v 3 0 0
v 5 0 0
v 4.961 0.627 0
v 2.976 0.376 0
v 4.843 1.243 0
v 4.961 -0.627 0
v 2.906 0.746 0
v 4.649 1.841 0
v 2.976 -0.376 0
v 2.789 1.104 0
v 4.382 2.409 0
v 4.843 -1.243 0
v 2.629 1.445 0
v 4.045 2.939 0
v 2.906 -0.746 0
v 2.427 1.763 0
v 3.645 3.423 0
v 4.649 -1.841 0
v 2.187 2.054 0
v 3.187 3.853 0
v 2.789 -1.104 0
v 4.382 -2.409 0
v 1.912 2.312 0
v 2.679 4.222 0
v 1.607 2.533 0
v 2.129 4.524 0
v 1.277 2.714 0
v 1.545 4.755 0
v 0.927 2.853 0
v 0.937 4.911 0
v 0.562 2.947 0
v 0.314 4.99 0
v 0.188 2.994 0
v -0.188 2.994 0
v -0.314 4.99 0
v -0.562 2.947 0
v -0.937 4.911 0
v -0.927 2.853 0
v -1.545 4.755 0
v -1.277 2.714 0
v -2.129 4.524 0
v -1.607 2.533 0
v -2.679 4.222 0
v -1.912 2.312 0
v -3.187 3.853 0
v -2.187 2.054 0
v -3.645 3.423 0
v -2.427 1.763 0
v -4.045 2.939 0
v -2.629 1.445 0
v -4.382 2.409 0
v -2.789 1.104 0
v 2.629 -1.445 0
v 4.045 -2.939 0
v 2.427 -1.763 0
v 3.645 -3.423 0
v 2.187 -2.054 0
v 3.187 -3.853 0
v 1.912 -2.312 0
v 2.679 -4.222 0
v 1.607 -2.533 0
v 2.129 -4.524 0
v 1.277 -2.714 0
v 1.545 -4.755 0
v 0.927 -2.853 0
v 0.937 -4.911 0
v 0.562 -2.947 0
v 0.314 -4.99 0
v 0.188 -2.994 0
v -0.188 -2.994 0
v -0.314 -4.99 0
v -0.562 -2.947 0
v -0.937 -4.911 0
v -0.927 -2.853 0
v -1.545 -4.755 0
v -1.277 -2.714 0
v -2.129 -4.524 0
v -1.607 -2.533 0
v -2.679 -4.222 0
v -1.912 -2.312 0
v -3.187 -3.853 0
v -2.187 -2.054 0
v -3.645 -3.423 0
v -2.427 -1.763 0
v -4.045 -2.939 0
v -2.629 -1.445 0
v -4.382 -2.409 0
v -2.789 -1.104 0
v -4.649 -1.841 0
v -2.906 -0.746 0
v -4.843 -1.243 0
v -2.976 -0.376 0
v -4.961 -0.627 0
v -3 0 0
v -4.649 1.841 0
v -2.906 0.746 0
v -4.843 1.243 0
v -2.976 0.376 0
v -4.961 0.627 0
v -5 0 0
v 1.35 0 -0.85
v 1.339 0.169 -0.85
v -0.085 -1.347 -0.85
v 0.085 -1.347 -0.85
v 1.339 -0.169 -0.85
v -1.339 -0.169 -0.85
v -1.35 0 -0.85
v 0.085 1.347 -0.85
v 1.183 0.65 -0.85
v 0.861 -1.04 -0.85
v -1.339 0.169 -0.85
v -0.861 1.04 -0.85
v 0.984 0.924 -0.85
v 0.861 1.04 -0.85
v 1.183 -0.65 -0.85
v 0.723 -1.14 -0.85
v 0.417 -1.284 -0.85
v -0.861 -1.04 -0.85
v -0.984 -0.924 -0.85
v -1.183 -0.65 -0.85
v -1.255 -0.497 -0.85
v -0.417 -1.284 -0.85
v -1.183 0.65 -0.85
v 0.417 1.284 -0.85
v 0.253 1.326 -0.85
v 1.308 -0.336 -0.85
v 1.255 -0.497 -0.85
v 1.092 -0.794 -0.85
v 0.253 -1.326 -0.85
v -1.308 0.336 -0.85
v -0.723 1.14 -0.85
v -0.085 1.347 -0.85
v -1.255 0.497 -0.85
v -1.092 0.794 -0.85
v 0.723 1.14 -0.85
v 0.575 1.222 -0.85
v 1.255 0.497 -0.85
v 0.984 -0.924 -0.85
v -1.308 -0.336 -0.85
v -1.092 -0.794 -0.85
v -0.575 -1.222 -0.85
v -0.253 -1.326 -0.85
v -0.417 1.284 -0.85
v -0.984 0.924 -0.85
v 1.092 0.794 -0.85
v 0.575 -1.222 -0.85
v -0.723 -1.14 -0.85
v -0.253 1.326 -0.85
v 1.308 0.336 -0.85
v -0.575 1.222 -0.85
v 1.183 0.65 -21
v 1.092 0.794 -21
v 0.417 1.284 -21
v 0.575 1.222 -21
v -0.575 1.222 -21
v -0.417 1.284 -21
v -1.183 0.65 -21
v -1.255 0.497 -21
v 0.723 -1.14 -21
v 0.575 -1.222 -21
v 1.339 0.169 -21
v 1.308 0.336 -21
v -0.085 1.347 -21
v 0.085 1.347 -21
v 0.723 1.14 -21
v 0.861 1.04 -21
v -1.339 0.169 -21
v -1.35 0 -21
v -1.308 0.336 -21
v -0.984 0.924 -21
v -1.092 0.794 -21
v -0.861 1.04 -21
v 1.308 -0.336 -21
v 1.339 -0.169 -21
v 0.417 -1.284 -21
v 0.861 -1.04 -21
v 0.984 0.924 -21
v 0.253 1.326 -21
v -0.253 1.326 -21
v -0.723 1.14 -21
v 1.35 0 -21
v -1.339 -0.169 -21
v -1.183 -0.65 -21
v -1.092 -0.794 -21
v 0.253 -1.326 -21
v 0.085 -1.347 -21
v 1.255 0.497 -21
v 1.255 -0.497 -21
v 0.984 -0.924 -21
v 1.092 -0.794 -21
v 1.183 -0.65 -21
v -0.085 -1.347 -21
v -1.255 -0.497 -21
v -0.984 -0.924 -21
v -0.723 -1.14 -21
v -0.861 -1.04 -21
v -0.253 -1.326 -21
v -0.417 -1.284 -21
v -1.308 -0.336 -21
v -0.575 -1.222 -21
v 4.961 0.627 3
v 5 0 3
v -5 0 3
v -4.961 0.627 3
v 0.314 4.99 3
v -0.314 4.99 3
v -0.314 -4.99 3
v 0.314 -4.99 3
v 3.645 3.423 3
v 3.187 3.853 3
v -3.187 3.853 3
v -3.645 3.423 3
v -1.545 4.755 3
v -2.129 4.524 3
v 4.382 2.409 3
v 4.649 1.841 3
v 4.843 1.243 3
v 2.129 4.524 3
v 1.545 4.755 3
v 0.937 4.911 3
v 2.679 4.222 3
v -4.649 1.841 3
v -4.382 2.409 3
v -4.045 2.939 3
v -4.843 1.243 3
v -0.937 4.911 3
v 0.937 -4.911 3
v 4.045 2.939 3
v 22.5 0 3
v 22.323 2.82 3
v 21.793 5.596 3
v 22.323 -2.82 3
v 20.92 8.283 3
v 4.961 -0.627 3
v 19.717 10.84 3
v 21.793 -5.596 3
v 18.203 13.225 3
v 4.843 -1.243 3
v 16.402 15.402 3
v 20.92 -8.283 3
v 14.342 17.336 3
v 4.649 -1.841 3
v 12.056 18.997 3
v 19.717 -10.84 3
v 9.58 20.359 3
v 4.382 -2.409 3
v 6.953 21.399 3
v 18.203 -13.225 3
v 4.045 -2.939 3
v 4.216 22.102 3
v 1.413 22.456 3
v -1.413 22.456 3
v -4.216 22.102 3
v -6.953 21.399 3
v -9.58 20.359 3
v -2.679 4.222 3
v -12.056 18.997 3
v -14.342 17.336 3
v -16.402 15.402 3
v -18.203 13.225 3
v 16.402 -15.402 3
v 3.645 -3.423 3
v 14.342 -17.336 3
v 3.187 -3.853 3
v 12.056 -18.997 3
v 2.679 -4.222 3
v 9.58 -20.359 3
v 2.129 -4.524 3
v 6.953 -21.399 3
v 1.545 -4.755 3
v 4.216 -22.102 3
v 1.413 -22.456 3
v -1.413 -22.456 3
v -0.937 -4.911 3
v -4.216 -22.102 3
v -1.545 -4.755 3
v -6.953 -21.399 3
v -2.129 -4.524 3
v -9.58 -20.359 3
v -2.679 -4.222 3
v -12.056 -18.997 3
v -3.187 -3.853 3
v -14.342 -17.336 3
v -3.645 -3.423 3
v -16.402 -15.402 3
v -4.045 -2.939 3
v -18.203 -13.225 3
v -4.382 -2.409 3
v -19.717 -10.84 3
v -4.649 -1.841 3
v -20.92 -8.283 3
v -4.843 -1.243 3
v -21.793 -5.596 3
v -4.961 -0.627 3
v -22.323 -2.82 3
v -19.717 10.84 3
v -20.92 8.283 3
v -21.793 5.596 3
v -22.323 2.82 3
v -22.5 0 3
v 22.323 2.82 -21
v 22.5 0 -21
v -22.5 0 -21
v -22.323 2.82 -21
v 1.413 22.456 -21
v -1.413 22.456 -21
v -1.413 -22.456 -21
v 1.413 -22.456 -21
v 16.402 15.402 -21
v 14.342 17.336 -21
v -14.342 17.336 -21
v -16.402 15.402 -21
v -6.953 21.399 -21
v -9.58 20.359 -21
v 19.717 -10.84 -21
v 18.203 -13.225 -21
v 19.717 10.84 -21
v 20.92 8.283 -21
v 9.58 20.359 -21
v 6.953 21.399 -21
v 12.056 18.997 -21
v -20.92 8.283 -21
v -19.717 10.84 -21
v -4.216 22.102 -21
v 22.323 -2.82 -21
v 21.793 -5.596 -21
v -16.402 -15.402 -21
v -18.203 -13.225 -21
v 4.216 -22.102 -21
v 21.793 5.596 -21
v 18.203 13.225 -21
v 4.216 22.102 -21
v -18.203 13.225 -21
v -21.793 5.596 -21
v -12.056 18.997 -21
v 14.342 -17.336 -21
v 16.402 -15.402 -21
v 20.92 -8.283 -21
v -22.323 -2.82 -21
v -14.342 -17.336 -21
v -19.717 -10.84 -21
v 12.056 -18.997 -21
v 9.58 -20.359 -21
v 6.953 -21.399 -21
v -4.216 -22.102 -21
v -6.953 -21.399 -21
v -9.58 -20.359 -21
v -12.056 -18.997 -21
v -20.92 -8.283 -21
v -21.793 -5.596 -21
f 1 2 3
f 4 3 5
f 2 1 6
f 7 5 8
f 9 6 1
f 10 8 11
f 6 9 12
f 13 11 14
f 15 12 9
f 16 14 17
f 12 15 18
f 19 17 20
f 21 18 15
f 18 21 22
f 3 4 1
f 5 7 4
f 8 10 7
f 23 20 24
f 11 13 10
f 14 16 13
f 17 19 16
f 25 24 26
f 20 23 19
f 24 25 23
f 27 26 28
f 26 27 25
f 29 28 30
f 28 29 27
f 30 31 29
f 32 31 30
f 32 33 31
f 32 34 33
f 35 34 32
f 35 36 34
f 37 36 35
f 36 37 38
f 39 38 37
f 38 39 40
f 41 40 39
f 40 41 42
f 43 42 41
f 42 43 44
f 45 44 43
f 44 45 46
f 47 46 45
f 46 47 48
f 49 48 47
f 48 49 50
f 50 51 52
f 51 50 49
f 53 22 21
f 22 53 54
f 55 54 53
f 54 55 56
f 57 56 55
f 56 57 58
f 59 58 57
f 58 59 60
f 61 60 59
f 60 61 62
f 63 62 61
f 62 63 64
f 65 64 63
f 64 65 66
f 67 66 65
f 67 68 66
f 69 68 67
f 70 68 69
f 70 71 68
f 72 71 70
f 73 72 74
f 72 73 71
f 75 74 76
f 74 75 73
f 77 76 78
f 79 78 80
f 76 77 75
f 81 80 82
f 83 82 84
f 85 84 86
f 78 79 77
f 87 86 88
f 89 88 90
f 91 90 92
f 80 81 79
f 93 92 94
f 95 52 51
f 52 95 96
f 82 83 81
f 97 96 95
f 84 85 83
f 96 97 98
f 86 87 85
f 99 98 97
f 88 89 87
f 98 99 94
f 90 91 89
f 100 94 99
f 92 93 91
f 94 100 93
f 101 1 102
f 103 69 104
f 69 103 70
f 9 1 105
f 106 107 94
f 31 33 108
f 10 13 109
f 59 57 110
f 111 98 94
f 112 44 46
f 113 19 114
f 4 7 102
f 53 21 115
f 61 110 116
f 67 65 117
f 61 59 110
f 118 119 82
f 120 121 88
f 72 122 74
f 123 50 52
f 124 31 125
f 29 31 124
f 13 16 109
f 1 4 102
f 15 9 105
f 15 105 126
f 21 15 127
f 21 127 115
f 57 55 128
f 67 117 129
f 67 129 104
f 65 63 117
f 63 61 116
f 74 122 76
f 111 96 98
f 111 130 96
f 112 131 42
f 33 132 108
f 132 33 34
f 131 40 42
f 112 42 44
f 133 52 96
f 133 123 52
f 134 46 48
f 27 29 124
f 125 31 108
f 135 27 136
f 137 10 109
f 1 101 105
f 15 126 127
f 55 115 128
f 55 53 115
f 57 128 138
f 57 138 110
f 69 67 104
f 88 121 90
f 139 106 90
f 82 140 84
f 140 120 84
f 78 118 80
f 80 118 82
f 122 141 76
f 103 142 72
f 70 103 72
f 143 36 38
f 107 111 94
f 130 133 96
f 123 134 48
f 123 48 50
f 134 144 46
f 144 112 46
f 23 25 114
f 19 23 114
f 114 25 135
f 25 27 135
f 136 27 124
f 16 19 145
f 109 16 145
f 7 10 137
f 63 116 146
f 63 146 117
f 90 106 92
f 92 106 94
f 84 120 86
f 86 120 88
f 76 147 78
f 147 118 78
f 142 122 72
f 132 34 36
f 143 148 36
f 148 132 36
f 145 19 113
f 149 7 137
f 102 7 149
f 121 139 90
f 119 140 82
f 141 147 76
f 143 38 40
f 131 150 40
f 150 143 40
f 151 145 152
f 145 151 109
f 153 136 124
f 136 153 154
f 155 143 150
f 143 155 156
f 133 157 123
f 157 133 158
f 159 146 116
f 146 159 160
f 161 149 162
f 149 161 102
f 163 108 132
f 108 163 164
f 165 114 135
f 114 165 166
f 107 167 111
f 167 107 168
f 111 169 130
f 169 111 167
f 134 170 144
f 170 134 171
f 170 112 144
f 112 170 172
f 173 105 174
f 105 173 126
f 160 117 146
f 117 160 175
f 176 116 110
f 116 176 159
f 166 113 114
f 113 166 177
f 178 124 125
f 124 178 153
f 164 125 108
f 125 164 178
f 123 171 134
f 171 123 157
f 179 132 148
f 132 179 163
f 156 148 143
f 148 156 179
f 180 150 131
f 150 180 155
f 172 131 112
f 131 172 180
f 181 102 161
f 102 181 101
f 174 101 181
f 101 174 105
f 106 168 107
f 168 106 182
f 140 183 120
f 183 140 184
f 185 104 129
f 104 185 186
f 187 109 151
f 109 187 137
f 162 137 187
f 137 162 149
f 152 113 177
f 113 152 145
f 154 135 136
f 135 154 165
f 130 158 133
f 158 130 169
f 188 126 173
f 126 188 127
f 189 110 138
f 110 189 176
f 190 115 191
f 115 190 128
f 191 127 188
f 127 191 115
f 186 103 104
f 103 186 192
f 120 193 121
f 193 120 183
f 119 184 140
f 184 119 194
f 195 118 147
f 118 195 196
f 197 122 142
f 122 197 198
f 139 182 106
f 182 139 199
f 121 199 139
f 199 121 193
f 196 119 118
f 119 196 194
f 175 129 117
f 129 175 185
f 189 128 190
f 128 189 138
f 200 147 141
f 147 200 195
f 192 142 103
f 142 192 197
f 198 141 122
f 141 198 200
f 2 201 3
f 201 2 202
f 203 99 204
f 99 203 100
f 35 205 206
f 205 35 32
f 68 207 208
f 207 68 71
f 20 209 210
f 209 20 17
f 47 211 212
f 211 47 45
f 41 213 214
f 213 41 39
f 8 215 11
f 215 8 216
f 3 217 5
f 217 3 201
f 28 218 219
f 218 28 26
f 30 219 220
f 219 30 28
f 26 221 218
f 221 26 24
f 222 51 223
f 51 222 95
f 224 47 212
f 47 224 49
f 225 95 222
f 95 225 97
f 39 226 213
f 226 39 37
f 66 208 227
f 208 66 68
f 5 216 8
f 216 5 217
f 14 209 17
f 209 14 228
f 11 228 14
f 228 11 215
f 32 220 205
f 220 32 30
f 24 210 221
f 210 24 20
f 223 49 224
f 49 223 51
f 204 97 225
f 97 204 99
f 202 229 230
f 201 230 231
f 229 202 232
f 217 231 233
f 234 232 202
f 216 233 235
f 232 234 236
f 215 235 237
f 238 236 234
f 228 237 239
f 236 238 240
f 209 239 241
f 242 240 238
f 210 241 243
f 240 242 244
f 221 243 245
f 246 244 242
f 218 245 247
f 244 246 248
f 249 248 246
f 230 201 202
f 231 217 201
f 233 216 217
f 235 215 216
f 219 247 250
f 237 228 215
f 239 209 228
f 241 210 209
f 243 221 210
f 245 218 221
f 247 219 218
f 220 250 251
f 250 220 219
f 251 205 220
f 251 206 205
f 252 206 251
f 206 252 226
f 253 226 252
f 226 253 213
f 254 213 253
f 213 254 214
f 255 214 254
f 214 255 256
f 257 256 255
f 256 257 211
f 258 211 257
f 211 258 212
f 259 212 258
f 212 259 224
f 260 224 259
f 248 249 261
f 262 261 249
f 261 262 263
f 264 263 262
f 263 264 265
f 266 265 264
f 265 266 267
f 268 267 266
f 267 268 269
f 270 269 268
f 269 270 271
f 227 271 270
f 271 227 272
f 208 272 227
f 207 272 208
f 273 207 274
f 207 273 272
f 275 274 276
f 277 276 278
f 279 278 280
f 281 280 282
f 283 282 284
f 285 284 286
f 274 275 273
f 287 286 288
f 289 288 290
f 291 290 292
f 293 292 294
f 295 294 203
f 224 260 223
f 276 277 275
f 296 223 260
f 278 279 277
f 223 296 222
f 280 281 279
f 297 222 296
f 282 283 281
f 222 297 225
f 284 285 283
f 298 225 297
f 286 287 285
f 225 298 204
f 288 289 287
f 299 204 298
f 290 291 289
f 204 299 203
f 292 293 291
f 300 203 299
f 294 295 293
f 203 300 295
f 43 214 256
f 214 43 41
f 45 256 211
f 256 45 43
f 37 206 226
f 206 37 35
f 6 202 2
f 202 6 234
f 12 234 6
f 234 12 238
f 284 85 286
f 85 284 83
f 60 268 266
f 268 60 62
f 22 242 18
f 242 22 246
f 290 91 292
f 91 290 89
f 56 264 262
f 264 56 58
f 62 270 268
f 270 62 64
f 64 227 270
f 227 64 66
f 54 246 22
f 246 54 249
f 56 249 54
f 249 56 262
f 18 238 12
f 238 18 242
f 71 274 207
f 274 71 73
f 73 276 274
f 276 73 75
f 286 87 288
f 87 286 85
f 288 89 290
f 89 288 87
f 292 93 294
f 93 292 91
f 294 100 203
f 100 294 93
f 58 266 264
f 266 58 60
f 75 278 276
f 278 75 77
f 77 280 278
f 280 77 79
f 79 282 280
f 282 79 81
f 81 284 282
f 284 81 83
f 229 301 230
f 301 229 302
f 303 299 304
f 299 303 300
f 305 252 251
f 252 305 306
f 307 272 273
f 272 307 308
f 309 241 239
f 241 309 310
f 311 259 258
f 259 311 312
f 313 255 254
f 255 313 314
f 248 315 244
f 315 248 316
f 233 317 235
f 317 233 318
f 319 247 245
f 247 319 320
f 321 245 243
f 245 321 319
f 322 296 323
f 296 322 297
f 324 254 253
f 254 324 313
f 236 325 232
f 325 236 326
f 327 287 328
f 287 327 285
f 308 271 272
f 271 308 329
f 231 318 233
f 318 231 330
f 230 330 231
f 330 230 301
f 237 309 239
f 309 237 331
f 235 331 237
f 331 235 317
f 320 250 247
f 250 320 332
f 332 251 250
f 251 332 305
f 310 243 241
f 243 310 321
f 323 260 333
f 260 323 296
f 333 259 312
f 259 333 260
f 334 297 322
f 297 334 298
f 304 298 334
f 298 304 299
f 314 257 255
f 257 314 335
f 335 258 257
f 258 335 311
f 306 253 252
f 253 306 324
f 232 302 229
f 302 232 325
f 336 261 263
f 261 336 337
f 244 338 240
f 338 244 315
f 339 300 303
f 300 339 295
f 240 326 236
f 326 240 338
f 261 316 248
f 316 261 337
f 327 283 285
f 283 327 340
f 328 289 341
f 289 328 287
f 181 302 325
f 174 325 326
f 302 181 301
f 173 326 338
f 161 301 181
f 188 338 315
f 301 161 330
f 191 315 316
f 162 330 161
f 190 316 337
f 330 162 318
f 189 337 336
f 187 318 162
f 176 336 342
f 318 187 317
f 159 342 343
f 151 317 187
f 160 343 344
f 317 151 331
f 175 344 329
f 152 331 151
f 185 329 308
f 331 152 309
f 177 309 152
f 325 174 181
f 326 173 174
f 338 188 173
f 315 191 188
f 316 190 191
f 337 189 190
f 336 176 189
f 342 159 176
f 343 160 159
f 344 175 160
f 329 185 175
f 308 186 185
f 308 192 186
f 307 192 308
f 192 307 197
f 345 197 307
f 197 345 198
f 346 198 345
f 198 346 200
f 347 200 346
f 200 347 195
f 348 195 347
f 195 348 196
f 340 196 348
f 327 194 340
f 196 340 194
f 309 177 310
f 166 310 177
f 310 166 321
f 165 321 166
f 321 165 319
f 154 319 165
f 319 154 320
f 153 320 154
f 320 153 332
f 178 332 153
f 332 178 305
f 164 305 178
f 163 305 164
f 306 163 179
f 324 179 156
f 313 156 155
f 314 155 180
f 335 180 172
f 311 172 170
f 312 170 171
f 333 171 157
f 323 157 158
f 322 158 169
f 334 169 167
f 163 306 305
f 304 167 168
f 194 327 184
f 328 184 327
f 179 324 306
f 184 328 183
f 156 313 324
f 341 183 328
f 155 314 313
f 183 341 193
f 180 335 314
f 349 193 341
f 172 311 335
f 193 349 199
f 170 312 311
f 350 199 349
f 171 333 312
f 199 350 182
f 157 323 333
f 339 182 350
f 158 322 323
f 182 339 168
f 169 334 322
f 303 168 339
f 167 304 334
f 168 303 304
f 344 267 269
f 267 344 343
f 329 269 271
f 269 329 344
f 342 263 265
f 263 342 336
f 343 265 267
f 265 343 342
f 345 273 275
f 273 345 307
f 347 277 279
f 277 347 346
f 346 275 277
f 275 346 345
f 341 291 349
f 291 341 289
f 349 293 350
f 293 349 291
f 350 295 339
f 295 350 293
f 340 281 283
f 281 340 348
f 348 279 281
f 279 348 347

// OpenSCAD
$fn = 50;

difference() {
	union() {
		translate(v = [0, 0, -21.0]) {
			cylinder(h = 24, r = 22.5);
		}
	}
	union() {
		translate(v = [0, 0, 0]) {
			rotate(a = [0, 0, 0]) {
				difference() {
					union() {
						translate(v = [0, 0, -24.0]) {
							cylinder(h = 24, r = 1.0);
						}
						translate(v = [0, 0, -0.85]) {
							cylinder(h = 0.85, r1 = 1.35, r2 = 3.0);
						}
						translate(v = [0, 0, -24.0]) {
							cylinder(h = 24, r = 1.35);
						}
						translate(v = [0, 0, -24.0]) {
							cylinder(h = 24, r = 1.0);
						}
					}
					union();
				}
			}
		}
		#cylinder(h = 3, r = 5.0);
	}
}
